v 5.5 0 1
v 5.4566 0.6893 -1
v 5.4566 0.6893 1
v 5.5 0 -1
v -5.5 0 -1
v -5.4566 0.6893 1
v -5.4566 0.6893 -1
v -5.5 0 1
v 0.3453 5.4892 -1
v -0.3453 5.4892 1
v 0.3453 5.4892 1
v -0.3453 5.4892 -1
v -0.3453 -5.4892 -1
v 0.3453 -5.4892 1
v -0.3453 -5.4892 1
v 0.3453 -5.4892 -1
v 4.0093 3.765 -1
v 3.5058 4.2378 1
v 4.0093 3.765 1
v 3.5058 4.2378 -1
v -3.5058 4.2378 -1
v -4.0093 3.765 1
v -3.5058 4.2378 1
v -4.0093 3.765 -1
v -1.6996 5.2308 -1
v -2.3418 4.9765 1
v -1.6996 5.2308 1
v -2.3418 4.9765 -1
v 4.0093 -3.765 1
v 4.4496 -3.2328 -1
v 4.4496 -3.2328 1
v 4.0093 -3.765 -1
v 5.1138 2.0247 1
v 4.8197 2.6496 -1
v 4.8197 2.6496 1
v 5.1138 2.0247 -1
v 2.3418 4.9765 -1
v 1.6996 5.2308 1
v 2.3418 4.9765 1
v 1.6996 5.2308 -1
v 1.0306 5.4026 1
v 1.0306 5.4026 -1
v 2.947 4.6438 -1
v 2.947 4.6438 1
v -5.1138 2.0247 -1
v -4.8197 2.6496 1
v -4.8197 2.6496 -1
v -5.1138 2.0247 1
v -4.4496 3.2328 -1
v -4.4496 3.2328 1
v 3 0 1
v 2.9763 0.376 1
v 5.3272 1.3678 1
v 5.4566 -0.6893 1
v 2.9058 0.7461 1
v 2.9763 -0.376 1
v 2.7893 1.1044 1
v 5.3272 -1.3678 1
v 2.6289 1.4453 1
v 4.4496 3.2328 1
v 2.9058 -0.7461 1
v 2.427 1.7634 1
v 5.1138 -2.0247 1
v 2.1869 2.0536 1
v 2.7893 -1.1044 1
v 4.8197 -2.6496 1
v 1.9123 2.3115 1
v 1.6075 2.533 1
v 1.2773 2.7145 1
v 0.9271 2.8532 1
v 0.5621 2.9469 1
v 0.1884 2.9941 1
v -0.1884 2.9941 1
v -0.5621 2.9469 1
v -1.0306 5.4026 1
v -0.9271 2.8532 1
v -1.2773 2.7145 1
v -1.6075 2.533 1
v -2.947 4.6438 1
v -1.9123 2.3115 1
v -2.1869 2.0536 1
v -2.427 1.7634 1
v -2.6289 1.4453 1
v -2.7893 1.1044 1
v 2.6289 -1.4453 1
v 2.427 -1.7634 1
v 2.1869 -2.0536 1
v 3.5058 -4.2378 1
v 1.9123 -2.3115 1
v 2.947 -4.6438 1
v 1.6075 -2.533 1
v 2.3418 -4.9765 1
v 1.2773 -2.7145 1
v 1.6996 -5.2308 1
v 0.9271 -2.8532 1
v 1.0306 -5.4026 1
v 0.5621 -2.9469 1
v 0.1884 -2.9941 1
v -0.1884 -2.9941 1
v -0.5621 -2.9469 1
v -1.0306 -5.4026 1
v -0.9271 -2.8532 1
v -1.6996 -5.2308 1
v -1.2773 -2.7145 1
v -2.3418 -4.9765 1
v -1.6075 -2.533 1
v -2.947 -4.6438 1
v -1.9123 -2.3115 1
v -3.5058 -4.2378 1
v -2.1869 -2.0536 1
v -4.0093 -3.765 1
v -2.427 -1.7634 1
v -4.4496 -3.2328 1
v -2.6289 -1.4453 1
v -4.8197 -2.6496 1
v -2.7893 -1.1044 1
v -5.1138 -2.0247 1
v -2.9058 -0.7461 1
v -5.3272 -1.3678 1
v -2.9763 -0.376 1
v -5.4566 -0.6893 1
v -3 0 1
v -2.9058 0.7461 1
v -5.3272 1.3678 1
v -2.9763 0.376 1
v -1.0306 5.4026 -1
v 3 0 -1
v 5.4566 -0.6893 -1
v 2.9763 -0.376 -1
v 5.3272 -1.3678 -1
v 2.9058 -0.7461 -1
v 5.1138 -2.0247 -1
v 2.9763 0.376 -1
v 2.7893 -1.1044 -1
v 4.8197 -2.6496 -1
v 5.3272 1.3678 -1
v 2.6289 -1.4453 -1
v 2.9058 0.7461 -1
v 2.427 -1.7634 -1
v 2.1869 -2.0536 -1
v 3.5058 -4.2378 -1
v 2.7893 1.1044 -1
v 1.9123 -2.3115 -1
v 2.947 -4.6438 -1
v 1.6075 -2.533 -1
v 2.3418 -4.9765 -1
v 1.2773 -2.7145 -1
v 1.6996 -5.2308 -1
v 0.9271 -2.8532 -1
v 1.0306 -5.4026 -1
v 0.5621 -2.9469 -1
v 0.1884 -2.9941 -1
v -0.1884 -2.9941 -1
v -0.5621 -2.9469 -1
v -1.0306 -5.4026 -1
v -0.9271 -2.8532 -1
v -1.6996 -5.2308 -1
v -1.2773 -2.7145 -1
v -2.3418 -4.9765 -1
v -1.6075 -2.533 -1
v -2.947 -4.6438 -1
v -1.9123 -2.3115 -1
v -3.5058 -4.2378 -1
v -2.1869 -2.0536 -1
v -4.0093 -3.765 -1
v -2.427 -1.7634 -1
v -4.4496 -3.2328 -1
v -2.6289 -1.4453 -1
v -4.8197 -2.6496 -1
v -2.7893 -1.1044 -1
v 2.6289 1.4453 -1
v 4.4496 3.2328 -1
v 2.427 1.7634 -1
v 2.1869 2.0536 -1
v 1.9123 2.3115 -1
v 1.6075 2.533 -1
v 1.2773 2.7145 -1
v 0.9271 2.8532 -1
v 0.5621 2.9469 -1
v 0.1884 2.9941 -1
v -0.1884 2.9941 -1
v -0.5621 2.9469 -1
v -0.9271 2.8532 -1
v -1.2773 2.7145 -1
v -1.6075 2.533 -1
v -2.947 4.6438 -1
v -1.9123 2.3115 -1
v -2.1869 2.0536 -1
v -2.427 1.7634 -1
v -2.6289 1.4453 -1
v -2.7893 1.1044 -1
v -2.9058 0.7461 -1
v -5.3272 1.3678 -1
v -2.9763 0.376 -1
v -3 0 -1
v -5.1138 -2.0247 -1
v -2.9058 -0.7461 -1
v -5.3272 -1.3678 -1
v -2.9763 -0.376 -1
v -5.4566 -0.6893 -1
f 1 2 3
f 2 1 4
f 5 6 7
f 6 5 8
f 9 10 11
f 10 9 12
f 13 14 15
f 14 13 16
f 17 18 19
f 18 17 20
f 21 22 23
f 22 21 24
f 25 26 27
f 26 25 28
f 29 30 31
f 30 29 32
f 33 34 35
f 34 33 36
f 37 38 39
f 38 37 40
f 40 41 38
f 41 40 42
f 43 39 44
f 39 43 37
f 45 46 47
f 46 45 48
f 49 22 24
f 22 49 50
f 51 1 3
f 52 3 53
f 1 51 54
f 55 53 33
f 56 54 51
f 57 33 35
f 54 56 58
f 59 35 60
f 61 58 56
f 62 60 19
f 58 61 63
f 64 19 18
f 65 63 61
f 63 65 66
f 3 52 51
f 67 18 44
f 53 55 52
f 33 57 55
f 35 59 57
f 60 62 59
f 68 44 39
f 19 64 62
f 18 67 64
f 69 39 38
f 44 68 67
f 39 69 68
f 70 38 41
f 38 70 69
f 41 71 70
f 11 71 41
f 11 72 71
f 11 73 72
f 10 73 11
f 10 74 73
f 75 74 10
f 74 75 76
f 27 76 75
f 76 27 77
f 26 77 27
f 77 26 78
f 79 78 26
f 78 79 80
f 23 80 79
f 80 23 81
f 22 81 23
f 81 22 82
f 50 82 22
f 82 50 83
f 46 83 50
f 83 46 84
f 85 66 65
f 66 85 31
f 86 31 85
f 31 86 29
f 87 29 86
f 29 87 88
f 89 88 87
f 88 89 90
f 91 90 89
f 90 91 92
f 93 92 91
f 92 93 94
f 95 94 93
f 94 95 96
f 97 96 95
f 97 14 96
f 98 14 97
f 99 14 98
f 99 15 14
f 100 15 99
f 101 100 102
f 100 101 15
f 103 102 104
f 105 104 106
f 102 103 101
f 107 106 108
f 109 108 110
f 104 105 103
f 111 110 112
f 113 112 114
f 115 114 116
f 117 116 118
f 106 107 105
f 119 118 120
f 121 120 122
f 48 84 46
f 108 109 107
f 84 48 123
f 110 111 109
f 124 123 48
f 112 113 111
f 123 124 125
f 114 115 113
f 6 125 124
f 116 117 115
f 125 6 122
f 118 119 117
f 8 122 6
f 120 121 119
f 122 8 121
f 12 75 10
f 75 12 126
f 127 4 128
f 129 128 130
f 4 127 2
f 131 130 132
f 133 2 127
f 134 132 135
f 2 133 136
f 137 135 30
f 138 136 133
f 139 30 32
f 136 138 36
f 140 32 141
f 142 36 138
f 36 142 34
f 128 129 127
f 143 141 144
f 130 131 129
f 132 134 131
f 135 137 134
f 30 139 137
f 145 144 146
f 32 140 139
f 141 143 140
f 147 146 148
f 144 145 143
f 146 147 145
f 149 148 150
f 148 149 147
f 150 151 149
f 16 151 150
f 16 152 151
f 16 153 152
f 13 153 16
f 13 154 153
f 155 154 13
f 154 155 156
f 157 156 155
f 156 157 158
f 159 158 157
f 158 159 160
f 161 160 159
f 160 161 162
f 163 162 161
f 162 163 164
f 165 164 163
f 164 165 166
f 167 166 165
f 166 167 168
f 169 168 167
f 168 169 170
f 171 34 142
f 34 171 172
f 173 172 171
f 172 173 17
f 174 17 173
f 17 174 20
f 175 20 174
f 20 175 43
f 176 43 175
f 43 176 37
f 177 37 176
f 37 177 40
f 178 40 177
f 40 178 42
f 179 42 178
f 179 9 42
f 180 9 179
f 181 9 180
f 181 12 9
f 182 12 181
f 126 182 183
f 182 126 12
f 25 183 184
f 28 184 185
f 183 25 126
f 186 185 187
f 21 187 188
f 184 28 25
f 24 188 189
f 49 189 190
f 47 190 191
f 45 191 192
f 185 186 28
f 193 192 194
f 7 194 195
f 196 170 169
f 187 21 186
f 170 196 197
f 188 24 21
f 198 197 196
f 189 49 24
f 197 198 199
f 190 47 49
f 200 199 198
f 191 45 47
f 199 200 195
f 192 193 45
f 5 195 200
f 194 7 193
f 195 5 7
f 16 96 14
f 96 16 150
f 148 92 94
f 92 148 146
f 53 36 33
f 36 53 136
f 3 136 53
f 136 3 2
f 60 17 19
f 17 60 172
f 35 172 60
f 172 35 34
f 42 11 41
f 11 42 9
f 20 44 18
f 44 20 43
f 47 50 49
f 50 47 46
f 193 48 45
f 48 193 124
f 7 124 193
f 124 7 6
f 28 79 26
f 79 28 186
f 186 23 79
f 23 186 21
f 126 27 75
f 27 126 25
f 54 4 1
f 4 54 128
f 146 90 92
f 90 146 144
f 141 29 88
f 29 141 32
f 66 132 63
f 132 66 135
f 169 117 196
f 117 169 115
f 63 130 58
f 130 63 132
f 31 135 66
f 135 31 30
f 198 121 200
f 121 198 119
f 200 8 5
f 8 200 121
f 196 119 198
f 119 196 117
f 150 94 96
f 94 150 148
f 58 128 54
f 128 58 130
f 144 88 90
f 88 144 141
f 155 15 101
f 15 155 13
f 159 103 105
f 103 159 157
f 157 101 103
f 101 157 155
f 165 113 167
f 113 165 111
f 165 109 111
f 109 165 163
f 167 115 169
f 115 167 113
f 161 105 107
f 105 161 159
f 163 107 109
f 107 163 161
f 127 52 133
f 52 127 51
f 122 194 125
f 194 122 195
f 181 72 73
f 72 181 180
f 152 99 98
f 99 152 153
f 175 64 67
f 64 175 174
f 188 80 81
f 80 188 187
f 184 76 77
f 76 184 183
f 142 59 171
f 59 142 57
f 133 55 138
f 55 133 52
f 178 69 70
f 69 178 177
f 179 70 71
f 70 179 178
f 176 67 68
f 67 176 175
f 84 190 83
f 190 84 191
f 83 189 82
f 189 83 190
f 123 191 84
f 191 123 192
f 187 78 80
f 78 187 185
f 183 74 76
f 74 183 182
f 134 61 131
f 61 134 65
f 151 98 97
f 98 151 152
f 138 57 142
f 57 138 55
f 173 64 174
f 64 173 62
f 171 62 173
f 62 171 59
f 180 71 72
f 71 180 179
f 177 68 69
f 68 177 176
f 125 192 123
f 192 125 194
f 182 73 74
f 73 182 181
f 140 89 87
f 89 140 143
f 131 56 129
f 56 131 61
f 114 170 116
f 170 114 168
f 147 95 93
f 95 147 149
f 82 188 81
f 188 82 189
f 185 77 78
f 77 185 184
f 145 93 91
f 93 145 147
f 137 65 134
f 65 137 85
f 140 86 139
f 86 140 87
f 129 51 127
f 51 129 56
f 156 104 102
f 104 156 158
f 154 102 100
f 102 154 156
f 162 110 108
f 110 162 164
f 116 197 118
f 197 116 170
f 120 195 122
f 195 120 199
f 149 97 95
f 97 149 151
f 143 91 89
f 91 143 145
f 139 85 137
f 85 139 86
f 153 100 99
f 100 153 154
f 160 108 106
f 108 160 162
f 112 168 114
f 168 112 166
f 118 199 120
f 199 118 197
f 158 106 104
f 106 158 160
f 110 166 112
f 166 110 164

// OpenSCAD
$fn = 50;


difference() {
	union() {
		translate(v = [0, 0, -1.0000000000]) {
			cylinder(h = 2, r = 5.5000000000);
		}
	}
	union() {
		translate(v = [0, 0, -100.0000000000]) {
			cylinder(h = 200, r = 3);
		}
	}
}
